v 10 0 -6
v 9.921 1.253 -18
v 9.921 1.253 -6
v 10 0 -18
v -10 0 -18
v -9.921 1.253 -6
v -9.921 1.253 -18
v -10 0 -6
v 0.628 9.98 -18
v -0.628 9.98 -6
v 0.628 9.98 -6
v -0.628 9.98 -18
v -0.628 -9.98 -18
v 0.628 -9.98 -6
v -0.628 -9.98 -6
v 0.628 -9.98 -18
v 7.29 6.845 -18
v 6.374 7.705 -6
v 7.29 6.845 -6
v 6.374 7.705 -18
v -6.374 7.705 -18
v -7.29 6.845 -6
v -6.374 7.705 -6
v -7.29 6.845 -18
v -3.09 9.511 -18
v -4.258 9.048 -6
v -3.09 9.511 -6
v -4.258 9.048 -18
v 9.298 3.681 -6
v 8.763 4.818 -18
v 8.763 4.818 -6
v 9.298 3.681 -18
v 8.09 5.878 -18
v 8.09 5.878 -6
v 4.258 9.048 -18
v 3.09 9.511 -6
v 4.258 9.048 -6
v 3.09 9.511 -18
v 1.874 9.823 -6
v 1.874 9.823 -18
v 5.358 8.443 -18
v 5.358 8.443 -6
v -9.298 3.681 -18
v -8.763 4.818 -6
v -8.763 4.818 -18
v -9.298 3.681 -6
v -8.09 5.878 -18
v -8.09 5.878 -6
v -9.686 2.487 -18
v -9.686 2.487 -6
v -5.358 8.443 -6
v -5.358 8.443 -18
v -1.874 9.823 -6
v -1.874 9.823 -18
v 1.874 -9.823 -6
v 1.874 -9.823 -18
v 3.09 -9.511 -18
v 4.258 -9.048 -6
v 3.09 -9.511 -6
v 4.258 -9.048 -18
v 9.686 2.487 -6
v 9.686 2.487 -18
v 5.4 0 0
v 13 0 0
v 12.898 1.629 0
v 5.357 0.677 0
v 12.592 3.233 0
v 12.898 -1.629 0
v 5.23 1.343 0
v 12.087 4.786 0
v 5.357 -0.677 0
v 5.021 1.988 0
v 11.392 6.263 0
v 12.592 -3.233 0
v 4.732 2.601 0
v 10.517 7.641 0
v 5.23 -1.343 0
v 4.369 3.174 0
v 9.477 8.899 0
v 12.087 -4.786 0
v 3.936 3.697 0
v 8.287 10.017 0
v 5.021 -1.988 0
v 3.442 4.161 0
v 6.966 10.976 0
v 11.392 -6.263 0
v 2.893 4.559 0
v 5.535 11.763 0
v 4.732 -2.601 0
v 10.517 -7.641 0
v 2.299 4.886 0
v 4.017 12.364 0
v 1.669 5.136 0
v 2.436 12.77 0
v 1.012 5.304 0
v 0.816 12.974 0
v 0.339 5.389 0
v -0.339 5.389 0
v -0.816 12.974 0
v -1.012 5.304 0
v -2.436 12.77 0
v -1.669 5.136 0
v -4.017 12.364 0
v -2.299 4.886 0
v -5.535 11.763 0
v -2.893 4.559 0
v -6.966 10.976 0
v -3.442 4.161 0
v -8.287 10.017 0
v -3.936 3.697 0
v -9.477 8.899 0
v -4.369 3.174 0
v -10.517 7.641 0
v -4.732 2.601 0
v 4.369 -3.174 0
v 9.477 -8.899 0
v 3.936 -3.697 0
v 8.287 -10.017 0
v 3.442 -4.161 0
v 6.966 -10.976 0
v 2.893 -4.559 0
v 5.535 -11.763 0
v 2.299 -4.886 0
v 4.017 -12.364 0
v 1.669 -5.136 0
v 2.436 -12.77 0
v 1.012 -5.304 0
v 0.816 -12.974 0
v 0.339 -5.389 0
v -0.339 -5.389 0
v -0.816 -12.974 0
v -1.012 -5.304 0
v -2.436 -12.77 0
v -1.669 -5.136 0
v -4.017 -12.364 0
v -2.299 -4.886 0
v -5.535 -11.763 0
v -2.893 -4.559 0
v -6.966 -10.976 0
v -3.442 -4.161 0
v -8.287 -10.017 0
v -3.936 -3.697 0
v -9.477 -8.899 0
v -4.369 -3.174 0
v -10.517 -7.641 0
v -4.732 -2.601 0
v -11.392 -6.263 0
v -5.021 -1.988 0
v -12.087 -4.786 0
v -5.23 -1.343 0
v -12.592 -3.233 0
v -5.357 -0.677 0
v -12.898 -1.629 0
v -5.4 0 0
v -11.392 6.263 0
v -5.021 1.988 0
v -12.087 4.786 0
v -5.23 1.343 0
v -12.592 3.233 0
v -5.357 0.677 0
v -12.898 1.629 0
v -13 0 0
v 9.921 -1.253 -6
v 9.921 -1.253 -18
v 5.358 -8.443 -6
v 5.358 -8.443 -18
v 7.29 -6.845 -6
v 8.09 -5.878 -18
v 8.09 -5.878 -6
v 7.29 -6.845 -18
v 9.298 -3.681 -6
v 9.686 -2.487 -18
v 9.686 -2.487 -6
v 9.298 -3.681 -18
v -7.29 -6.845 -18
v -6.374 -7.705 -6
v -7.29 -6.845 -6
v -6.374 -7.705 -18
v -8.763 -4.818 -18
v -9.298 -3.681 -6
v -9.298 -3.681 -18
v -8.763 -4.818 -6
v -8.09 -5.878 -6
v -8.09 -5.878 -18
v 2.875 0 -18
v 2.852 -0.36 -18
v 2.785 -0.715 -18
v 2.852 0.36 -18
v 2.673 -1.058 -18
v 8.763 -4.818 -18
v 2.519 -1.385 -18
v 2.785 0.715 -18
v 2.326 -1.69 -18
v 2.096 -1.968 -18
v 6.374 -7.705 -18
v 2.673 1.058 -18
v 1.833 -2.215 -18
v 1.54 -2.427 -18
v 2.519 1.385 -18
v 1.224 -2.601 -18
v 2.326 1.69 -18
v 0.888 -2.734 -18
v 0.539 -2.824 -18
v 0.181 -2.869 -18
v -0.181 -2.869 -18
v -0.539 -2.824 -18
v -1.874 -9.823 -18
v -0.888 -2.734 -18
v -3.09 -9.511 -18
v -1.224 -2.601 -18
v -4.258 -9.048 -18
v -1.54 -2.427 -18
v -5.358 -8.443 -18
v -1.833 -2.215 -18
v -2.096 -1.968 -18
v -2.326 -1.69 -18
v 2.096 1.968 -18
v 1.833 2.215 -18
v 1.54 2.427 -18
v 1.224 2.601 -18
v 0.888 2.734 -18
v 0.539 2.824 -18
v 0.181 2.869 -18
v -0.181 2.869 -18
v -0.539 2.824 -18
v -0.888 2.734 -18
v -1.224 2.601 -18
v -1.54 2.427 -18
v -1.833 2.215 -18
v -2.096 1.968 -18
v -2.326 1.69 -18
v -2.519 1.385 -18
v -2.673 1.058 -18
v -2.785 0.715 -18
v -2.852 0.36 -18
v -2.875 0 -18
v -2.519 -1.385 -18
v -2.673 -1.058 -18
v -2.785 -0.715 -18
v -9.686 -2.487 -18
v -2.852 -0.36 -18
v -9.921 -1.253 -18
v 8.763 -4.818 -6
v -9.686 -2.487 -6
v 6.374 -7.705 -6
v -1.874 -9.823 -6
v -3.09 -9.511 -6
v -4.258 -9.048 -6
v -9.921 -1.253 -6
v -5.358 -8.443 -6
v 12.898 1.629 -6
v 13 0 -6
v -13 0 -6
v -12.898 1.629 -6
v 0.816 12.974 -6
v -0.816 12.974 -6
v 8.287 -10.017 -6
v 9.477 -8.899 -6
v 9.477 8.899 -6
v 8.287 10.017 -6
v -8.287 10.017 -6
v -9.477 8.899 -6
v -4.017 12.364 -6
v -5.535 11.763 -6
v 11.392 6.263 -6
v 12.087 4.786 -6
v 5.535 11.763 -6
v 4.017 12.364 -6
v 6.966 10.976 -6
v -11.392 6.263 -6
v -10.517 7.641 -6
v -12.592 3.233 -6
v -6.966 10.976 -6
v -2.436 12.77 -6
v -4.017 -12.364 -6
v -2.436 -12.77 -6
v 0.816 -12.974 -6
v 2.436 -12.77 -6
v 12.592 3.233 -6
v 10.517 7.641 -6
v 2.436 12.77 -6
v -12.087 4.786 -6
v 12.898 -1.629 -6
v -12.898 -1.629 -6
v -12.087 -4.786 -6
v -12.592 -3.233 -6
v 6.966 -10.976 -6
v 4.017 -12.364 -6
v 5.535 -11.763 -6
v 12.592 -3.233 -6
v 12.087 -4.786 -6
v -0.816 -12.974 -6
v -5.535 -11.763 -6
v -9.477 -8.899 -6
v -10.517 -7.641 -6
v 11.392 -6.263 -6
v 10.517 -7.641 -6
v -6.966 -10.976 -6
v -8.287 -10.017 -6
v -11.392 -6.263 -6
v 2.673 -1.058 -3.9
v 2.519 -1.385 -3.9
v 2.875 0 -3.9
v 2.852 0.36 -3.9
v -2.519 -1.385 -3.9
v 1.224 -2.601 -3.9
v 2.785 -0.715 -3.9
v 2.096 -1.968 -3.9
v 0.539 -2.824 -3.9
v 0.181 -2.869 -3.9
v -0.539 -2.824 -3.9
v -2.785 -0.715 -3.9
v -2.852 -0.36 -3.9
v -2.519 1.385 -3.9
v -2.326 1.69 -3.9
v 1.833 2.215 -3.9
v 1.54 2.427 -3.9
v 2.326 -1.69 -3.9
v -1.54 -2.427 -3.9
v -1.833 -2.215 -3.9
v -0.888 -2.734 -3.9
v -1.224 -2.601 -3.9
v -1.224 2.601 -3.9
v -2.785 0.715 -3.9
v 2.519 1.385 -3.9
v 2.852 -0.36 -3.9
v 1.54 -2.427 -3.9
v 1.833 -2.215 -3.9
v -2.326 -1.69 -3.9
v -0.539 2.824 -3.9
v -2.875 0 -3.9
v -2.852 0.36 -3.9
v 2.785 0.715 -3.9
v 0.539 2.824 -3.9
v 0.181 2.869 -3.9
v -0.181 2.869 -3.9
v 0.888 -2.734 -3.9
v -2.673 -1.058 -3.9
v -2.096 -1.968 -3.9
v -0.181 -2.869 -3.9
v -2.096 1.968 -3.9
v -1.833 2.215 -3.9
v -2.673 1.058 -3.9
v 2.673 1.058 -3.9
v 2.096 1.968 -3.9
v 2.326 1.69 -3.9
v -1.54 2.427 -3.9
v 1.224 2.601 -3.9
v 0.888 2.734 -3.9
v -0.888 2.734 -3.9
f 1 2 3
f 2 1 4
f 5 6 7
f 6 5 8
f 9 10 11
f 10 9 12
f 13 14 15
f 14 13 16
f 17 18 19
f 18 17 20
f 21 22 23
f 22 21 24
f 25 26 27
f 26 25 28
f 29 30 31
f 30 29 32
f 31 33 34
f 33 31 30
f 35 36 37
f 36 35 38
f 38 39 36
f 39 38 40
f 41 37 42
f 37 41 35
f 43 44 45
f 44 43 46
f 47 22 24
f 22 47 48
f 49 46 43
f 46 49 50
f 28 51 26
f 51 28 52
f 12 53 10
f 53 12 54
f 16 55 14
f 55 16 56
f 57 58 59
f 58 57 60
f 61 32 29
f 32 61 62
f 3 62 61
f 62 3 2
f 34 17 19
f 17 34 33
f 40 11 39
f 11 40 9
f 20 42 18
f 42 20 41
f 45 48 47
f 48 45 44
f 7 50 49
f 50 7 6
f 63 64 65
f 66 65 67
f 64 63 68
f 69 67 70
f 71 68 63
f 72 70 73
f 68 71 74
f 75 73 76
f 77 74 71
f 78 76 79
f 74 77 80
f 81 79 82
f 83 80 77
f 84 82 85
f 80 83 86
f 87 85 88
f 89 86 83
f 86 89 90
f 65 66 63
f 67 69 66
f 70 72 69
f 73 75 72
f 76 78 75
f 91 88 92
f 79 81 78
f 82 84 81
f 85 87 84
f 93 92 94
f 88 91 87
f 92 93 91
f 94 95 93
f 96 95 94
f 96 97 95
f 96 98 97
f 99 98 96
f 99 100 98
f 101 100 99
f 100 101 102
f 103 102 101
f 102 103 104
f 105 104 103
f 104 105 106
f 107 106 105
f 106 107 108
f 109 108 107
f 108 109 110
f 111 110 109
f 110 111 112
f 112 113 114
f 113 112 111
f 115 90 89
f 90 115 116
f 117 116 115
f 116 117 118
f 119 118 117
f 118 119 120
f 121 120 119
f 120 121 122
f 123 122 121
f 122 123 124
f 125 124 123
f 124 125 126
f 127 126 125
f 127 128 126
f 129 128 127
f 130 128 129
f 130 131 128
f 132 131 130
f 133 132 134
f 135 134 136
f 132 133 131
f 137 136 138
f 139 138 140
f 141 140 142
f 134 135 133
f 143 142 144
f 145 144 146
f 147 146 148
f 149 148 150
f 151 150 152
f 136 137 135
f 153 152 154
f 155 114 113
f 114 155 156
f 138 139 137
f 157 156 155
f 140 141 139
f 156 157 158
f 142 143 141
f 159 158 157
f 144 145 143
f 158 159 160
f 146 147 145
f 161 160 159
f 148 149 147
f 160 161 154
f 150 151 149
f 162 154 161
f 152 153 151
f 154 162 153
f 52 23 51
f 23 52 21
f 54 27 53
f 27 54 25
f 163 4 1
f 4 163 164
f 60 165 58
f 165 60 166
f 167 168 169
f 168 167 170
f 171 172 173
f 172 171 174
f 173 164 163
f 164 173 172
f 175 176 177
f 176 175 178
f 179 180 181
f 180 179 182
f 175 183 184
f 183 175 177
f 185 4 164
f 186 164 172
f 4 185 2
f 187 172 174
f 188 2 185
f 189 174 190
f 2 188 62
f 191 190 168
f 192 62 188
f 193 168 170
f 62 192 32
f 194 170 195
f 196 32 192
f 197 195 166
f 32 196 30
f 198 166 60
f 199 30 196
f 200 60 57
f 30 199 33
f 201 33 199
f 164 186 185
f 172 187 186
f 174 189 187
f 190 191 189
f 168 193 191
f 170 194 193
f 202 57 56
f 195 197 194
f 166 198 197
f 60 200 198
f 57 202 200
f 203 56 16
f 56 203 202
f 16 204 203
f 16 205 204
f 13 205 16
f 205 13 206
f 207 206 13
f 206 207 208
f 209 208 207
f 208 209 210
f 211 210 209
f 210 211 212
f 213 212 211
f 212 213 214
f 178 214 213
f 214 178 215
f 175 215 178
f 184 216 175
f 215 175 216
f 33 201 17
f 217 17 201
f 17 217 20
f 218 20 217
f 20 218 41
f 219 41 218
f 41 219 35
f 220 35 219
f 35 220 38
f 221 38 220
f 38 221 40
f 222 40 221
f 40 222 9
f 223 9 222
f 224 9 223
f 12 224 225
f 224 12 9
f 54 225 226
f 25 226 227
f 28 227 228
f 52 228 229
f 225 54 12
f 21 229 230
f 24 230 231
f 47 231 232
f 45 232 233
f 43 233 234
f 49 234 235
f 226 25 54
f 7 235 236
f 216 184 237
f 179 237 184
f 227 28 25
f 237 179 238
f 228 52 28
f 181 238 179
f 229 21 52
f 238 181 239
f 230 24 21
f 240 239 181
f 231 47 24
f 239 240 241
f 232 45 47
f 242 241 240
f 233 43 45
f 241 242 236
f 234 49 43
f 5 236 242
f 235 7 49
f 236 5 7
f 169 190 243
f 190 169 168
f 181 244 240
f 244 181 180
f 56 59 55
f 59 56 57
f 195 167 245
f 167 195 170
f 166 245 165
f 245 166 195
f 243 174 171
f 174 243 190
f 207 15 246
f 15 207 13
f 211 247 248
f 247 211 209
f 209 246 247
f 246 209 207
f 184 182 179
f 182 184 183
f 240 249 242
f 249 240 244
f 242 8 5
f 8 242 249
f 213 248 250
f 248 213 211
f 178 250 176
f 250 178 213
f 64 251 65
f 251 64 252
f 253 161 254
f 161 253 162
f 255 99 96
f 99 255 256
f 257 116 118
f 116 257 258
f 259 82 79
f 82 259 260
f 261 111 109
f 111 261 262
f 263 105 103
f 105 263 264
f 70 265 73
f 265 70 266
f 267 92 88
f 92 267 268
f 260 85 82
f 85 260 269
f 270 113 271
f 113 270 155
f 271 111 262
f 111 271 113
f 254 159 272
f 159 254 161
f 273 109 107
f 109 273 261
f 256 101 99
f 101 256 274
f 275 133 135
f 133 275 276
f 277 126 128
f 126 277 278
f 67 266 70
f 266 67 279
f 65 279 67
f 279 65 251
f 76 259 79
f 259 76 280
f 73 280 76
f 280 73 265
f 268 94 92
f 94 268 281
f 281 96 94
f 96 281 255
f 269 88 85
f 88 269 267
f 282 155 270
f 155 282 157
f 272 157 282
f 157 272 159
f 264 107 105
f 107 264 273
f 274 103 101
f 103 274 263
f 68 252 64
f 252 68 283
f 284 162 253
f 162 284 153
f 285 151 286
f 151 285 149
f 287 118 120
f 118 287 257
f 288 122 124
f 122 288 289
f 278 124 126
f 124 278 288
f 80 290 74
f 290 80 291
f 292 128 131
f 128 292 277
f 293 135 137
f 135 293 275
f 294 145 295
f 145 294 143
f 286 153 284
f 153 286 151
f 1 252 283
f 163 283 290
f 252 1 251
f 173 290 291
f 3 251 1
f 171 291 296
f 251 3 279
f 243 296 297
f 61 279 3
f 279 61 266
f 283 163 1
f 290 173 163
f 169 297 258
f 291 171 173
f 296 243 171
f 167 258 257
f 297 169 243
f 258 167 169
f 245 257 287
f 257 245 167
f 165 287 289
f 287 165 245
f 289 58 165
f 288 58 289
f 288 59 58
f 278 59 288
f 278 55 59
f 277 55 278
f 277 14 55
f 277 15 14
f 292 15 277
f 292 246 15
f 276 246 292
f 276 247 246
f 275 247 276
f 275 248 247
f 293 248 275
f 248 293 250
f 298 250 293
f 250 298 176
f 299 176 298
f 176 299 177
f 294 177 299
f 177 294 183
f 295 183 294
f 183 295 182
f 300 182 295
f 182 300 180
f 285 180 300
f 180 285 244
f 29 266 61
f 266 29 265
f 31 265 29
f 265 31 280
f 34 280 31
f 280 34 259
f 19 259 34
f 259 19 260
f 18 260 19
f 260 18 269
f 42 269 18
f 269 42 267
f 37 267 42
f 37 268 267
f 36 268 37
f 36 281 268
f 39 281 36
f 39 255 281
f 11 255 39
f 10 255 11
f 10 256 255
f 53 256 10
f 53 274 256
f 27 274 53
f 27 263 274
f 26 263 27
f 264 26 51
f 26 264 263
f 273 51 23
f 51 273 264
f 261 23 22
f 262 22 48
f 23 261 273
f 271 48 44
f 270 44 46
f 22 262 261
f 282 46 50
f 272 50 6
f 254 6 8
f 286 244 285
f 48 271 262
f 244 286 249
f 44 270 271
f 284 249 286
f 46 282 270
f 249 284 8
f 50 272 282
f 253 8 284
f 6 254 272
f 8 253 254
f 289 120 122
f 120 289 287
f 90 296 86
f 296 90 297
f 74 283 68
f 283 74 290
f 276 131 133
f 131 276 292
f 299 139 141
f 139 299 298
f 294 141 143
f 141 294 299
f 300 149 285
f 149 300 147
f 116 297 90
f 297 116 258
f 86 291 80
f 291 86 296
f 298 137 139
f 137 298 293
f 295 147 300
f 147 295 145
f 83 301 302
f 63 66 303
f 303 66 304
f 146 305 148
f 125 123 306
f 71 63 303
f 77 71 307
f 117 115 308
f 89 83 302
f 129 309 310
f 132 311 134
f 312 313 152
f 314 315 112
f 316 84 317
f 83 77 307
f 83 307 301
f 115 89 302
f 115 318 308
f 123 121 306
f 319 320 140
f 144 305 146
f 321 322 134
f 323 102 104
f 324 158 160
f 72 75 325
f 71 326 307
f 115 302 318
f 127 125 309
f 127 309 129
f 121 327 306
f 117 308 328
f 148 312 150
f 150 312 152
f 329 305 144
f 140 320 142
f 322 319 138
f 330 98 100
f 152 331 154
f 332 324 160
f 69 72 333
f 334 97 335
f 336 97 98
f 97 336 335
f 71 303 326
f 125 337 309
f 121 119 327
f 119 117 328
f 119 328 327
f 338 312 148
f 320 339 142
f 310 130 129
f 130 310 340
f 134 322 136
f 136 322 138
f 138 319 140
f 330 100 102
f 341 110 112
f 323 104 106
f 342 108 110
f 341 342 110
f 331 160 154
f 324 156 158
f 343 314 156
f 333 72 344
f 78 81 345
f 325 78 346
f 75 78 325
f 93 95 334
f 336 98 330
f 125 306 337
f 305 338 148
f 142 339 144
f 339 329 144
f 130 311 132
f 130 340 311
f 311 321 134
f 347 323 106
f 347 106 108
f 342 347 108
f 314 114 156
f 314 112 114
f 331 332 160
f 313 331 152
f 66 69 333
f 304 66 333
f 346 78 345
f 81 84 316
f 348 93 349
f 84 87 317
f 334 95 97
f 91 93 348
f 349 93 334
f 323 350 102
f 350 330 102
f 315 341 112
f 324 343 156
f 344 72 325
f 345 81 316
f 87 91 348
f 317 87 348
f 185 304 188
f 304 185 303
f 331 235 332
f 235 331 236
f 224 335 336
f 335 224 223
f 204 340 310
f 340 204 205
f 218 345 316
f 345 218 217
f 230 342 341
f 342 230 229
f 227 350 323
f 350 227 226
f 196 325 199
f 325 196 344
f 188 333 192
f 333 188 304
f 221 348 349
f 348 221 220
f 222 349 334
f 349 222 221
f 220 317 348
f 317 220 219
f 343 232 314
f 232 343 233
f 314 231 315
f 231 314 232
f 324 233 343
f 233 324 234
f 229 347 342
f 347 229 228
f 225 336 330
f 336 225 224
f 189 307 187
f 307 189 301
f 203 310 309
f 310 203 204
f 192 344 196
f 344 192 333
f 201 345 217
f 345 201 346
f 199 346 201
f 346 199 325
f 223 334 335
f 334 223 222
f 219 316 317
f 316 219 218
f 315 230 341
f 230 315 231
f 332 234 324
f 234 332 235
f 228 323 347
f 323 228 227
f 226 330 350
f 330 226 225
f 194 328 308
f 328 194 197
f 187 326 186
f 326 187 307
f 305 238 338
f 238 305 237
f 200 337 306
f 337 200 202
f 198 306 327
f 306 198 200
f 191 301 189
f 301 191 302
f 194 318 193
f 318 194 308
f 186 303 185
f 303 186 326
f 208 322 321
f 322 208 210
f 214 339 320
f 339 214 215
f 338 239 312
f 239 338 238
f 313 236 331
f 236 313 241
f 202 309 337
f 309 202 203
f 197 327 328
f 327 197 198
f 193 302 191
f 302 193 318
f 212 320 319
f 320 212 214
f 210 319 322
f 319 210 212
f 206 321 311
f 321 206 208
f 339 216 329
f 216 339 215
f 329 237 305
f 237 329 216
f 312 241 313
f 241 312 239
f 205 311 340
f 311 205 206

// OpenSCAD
$fn = 50;


difference() {
	union() {
		translate(v = [0, 0, -18.0000000000]) {
			cylinder(h = 18, r = 10.0000000000);
		}
		translate(v = [0, 0, -6.0000000000]) {
			cylinder(h = 6, r = 13.0000000000);
		}
	}
	union() {
		translate(v = [0, 0, 0]) {
			rotate(a = [0, 0, 0]) {
				difference() {
					union() {
						#translate(v = [0, 0, -18.0000000000]) {
							cylinder(h = 18, r = 2.6000000000);
						}
						#translate(v = [0, 0, -3.9000000000]) {
							cylinder(h = 3.9000000000, r = 10.0000000000, r1 = 2.8750000000, r2 = 5.4000000000);
						}
						#translate(v = [0, 0, -18.0000000000]) {
							cylinder(h = 18, r = 2.8750000000);
						}
						#translate(v = [0, 0, -18.0000000000]) {
							cylinder(h = 18, r = 2.6000000000);
						}
					}
					union();
				}
			}
		}
	}
}
